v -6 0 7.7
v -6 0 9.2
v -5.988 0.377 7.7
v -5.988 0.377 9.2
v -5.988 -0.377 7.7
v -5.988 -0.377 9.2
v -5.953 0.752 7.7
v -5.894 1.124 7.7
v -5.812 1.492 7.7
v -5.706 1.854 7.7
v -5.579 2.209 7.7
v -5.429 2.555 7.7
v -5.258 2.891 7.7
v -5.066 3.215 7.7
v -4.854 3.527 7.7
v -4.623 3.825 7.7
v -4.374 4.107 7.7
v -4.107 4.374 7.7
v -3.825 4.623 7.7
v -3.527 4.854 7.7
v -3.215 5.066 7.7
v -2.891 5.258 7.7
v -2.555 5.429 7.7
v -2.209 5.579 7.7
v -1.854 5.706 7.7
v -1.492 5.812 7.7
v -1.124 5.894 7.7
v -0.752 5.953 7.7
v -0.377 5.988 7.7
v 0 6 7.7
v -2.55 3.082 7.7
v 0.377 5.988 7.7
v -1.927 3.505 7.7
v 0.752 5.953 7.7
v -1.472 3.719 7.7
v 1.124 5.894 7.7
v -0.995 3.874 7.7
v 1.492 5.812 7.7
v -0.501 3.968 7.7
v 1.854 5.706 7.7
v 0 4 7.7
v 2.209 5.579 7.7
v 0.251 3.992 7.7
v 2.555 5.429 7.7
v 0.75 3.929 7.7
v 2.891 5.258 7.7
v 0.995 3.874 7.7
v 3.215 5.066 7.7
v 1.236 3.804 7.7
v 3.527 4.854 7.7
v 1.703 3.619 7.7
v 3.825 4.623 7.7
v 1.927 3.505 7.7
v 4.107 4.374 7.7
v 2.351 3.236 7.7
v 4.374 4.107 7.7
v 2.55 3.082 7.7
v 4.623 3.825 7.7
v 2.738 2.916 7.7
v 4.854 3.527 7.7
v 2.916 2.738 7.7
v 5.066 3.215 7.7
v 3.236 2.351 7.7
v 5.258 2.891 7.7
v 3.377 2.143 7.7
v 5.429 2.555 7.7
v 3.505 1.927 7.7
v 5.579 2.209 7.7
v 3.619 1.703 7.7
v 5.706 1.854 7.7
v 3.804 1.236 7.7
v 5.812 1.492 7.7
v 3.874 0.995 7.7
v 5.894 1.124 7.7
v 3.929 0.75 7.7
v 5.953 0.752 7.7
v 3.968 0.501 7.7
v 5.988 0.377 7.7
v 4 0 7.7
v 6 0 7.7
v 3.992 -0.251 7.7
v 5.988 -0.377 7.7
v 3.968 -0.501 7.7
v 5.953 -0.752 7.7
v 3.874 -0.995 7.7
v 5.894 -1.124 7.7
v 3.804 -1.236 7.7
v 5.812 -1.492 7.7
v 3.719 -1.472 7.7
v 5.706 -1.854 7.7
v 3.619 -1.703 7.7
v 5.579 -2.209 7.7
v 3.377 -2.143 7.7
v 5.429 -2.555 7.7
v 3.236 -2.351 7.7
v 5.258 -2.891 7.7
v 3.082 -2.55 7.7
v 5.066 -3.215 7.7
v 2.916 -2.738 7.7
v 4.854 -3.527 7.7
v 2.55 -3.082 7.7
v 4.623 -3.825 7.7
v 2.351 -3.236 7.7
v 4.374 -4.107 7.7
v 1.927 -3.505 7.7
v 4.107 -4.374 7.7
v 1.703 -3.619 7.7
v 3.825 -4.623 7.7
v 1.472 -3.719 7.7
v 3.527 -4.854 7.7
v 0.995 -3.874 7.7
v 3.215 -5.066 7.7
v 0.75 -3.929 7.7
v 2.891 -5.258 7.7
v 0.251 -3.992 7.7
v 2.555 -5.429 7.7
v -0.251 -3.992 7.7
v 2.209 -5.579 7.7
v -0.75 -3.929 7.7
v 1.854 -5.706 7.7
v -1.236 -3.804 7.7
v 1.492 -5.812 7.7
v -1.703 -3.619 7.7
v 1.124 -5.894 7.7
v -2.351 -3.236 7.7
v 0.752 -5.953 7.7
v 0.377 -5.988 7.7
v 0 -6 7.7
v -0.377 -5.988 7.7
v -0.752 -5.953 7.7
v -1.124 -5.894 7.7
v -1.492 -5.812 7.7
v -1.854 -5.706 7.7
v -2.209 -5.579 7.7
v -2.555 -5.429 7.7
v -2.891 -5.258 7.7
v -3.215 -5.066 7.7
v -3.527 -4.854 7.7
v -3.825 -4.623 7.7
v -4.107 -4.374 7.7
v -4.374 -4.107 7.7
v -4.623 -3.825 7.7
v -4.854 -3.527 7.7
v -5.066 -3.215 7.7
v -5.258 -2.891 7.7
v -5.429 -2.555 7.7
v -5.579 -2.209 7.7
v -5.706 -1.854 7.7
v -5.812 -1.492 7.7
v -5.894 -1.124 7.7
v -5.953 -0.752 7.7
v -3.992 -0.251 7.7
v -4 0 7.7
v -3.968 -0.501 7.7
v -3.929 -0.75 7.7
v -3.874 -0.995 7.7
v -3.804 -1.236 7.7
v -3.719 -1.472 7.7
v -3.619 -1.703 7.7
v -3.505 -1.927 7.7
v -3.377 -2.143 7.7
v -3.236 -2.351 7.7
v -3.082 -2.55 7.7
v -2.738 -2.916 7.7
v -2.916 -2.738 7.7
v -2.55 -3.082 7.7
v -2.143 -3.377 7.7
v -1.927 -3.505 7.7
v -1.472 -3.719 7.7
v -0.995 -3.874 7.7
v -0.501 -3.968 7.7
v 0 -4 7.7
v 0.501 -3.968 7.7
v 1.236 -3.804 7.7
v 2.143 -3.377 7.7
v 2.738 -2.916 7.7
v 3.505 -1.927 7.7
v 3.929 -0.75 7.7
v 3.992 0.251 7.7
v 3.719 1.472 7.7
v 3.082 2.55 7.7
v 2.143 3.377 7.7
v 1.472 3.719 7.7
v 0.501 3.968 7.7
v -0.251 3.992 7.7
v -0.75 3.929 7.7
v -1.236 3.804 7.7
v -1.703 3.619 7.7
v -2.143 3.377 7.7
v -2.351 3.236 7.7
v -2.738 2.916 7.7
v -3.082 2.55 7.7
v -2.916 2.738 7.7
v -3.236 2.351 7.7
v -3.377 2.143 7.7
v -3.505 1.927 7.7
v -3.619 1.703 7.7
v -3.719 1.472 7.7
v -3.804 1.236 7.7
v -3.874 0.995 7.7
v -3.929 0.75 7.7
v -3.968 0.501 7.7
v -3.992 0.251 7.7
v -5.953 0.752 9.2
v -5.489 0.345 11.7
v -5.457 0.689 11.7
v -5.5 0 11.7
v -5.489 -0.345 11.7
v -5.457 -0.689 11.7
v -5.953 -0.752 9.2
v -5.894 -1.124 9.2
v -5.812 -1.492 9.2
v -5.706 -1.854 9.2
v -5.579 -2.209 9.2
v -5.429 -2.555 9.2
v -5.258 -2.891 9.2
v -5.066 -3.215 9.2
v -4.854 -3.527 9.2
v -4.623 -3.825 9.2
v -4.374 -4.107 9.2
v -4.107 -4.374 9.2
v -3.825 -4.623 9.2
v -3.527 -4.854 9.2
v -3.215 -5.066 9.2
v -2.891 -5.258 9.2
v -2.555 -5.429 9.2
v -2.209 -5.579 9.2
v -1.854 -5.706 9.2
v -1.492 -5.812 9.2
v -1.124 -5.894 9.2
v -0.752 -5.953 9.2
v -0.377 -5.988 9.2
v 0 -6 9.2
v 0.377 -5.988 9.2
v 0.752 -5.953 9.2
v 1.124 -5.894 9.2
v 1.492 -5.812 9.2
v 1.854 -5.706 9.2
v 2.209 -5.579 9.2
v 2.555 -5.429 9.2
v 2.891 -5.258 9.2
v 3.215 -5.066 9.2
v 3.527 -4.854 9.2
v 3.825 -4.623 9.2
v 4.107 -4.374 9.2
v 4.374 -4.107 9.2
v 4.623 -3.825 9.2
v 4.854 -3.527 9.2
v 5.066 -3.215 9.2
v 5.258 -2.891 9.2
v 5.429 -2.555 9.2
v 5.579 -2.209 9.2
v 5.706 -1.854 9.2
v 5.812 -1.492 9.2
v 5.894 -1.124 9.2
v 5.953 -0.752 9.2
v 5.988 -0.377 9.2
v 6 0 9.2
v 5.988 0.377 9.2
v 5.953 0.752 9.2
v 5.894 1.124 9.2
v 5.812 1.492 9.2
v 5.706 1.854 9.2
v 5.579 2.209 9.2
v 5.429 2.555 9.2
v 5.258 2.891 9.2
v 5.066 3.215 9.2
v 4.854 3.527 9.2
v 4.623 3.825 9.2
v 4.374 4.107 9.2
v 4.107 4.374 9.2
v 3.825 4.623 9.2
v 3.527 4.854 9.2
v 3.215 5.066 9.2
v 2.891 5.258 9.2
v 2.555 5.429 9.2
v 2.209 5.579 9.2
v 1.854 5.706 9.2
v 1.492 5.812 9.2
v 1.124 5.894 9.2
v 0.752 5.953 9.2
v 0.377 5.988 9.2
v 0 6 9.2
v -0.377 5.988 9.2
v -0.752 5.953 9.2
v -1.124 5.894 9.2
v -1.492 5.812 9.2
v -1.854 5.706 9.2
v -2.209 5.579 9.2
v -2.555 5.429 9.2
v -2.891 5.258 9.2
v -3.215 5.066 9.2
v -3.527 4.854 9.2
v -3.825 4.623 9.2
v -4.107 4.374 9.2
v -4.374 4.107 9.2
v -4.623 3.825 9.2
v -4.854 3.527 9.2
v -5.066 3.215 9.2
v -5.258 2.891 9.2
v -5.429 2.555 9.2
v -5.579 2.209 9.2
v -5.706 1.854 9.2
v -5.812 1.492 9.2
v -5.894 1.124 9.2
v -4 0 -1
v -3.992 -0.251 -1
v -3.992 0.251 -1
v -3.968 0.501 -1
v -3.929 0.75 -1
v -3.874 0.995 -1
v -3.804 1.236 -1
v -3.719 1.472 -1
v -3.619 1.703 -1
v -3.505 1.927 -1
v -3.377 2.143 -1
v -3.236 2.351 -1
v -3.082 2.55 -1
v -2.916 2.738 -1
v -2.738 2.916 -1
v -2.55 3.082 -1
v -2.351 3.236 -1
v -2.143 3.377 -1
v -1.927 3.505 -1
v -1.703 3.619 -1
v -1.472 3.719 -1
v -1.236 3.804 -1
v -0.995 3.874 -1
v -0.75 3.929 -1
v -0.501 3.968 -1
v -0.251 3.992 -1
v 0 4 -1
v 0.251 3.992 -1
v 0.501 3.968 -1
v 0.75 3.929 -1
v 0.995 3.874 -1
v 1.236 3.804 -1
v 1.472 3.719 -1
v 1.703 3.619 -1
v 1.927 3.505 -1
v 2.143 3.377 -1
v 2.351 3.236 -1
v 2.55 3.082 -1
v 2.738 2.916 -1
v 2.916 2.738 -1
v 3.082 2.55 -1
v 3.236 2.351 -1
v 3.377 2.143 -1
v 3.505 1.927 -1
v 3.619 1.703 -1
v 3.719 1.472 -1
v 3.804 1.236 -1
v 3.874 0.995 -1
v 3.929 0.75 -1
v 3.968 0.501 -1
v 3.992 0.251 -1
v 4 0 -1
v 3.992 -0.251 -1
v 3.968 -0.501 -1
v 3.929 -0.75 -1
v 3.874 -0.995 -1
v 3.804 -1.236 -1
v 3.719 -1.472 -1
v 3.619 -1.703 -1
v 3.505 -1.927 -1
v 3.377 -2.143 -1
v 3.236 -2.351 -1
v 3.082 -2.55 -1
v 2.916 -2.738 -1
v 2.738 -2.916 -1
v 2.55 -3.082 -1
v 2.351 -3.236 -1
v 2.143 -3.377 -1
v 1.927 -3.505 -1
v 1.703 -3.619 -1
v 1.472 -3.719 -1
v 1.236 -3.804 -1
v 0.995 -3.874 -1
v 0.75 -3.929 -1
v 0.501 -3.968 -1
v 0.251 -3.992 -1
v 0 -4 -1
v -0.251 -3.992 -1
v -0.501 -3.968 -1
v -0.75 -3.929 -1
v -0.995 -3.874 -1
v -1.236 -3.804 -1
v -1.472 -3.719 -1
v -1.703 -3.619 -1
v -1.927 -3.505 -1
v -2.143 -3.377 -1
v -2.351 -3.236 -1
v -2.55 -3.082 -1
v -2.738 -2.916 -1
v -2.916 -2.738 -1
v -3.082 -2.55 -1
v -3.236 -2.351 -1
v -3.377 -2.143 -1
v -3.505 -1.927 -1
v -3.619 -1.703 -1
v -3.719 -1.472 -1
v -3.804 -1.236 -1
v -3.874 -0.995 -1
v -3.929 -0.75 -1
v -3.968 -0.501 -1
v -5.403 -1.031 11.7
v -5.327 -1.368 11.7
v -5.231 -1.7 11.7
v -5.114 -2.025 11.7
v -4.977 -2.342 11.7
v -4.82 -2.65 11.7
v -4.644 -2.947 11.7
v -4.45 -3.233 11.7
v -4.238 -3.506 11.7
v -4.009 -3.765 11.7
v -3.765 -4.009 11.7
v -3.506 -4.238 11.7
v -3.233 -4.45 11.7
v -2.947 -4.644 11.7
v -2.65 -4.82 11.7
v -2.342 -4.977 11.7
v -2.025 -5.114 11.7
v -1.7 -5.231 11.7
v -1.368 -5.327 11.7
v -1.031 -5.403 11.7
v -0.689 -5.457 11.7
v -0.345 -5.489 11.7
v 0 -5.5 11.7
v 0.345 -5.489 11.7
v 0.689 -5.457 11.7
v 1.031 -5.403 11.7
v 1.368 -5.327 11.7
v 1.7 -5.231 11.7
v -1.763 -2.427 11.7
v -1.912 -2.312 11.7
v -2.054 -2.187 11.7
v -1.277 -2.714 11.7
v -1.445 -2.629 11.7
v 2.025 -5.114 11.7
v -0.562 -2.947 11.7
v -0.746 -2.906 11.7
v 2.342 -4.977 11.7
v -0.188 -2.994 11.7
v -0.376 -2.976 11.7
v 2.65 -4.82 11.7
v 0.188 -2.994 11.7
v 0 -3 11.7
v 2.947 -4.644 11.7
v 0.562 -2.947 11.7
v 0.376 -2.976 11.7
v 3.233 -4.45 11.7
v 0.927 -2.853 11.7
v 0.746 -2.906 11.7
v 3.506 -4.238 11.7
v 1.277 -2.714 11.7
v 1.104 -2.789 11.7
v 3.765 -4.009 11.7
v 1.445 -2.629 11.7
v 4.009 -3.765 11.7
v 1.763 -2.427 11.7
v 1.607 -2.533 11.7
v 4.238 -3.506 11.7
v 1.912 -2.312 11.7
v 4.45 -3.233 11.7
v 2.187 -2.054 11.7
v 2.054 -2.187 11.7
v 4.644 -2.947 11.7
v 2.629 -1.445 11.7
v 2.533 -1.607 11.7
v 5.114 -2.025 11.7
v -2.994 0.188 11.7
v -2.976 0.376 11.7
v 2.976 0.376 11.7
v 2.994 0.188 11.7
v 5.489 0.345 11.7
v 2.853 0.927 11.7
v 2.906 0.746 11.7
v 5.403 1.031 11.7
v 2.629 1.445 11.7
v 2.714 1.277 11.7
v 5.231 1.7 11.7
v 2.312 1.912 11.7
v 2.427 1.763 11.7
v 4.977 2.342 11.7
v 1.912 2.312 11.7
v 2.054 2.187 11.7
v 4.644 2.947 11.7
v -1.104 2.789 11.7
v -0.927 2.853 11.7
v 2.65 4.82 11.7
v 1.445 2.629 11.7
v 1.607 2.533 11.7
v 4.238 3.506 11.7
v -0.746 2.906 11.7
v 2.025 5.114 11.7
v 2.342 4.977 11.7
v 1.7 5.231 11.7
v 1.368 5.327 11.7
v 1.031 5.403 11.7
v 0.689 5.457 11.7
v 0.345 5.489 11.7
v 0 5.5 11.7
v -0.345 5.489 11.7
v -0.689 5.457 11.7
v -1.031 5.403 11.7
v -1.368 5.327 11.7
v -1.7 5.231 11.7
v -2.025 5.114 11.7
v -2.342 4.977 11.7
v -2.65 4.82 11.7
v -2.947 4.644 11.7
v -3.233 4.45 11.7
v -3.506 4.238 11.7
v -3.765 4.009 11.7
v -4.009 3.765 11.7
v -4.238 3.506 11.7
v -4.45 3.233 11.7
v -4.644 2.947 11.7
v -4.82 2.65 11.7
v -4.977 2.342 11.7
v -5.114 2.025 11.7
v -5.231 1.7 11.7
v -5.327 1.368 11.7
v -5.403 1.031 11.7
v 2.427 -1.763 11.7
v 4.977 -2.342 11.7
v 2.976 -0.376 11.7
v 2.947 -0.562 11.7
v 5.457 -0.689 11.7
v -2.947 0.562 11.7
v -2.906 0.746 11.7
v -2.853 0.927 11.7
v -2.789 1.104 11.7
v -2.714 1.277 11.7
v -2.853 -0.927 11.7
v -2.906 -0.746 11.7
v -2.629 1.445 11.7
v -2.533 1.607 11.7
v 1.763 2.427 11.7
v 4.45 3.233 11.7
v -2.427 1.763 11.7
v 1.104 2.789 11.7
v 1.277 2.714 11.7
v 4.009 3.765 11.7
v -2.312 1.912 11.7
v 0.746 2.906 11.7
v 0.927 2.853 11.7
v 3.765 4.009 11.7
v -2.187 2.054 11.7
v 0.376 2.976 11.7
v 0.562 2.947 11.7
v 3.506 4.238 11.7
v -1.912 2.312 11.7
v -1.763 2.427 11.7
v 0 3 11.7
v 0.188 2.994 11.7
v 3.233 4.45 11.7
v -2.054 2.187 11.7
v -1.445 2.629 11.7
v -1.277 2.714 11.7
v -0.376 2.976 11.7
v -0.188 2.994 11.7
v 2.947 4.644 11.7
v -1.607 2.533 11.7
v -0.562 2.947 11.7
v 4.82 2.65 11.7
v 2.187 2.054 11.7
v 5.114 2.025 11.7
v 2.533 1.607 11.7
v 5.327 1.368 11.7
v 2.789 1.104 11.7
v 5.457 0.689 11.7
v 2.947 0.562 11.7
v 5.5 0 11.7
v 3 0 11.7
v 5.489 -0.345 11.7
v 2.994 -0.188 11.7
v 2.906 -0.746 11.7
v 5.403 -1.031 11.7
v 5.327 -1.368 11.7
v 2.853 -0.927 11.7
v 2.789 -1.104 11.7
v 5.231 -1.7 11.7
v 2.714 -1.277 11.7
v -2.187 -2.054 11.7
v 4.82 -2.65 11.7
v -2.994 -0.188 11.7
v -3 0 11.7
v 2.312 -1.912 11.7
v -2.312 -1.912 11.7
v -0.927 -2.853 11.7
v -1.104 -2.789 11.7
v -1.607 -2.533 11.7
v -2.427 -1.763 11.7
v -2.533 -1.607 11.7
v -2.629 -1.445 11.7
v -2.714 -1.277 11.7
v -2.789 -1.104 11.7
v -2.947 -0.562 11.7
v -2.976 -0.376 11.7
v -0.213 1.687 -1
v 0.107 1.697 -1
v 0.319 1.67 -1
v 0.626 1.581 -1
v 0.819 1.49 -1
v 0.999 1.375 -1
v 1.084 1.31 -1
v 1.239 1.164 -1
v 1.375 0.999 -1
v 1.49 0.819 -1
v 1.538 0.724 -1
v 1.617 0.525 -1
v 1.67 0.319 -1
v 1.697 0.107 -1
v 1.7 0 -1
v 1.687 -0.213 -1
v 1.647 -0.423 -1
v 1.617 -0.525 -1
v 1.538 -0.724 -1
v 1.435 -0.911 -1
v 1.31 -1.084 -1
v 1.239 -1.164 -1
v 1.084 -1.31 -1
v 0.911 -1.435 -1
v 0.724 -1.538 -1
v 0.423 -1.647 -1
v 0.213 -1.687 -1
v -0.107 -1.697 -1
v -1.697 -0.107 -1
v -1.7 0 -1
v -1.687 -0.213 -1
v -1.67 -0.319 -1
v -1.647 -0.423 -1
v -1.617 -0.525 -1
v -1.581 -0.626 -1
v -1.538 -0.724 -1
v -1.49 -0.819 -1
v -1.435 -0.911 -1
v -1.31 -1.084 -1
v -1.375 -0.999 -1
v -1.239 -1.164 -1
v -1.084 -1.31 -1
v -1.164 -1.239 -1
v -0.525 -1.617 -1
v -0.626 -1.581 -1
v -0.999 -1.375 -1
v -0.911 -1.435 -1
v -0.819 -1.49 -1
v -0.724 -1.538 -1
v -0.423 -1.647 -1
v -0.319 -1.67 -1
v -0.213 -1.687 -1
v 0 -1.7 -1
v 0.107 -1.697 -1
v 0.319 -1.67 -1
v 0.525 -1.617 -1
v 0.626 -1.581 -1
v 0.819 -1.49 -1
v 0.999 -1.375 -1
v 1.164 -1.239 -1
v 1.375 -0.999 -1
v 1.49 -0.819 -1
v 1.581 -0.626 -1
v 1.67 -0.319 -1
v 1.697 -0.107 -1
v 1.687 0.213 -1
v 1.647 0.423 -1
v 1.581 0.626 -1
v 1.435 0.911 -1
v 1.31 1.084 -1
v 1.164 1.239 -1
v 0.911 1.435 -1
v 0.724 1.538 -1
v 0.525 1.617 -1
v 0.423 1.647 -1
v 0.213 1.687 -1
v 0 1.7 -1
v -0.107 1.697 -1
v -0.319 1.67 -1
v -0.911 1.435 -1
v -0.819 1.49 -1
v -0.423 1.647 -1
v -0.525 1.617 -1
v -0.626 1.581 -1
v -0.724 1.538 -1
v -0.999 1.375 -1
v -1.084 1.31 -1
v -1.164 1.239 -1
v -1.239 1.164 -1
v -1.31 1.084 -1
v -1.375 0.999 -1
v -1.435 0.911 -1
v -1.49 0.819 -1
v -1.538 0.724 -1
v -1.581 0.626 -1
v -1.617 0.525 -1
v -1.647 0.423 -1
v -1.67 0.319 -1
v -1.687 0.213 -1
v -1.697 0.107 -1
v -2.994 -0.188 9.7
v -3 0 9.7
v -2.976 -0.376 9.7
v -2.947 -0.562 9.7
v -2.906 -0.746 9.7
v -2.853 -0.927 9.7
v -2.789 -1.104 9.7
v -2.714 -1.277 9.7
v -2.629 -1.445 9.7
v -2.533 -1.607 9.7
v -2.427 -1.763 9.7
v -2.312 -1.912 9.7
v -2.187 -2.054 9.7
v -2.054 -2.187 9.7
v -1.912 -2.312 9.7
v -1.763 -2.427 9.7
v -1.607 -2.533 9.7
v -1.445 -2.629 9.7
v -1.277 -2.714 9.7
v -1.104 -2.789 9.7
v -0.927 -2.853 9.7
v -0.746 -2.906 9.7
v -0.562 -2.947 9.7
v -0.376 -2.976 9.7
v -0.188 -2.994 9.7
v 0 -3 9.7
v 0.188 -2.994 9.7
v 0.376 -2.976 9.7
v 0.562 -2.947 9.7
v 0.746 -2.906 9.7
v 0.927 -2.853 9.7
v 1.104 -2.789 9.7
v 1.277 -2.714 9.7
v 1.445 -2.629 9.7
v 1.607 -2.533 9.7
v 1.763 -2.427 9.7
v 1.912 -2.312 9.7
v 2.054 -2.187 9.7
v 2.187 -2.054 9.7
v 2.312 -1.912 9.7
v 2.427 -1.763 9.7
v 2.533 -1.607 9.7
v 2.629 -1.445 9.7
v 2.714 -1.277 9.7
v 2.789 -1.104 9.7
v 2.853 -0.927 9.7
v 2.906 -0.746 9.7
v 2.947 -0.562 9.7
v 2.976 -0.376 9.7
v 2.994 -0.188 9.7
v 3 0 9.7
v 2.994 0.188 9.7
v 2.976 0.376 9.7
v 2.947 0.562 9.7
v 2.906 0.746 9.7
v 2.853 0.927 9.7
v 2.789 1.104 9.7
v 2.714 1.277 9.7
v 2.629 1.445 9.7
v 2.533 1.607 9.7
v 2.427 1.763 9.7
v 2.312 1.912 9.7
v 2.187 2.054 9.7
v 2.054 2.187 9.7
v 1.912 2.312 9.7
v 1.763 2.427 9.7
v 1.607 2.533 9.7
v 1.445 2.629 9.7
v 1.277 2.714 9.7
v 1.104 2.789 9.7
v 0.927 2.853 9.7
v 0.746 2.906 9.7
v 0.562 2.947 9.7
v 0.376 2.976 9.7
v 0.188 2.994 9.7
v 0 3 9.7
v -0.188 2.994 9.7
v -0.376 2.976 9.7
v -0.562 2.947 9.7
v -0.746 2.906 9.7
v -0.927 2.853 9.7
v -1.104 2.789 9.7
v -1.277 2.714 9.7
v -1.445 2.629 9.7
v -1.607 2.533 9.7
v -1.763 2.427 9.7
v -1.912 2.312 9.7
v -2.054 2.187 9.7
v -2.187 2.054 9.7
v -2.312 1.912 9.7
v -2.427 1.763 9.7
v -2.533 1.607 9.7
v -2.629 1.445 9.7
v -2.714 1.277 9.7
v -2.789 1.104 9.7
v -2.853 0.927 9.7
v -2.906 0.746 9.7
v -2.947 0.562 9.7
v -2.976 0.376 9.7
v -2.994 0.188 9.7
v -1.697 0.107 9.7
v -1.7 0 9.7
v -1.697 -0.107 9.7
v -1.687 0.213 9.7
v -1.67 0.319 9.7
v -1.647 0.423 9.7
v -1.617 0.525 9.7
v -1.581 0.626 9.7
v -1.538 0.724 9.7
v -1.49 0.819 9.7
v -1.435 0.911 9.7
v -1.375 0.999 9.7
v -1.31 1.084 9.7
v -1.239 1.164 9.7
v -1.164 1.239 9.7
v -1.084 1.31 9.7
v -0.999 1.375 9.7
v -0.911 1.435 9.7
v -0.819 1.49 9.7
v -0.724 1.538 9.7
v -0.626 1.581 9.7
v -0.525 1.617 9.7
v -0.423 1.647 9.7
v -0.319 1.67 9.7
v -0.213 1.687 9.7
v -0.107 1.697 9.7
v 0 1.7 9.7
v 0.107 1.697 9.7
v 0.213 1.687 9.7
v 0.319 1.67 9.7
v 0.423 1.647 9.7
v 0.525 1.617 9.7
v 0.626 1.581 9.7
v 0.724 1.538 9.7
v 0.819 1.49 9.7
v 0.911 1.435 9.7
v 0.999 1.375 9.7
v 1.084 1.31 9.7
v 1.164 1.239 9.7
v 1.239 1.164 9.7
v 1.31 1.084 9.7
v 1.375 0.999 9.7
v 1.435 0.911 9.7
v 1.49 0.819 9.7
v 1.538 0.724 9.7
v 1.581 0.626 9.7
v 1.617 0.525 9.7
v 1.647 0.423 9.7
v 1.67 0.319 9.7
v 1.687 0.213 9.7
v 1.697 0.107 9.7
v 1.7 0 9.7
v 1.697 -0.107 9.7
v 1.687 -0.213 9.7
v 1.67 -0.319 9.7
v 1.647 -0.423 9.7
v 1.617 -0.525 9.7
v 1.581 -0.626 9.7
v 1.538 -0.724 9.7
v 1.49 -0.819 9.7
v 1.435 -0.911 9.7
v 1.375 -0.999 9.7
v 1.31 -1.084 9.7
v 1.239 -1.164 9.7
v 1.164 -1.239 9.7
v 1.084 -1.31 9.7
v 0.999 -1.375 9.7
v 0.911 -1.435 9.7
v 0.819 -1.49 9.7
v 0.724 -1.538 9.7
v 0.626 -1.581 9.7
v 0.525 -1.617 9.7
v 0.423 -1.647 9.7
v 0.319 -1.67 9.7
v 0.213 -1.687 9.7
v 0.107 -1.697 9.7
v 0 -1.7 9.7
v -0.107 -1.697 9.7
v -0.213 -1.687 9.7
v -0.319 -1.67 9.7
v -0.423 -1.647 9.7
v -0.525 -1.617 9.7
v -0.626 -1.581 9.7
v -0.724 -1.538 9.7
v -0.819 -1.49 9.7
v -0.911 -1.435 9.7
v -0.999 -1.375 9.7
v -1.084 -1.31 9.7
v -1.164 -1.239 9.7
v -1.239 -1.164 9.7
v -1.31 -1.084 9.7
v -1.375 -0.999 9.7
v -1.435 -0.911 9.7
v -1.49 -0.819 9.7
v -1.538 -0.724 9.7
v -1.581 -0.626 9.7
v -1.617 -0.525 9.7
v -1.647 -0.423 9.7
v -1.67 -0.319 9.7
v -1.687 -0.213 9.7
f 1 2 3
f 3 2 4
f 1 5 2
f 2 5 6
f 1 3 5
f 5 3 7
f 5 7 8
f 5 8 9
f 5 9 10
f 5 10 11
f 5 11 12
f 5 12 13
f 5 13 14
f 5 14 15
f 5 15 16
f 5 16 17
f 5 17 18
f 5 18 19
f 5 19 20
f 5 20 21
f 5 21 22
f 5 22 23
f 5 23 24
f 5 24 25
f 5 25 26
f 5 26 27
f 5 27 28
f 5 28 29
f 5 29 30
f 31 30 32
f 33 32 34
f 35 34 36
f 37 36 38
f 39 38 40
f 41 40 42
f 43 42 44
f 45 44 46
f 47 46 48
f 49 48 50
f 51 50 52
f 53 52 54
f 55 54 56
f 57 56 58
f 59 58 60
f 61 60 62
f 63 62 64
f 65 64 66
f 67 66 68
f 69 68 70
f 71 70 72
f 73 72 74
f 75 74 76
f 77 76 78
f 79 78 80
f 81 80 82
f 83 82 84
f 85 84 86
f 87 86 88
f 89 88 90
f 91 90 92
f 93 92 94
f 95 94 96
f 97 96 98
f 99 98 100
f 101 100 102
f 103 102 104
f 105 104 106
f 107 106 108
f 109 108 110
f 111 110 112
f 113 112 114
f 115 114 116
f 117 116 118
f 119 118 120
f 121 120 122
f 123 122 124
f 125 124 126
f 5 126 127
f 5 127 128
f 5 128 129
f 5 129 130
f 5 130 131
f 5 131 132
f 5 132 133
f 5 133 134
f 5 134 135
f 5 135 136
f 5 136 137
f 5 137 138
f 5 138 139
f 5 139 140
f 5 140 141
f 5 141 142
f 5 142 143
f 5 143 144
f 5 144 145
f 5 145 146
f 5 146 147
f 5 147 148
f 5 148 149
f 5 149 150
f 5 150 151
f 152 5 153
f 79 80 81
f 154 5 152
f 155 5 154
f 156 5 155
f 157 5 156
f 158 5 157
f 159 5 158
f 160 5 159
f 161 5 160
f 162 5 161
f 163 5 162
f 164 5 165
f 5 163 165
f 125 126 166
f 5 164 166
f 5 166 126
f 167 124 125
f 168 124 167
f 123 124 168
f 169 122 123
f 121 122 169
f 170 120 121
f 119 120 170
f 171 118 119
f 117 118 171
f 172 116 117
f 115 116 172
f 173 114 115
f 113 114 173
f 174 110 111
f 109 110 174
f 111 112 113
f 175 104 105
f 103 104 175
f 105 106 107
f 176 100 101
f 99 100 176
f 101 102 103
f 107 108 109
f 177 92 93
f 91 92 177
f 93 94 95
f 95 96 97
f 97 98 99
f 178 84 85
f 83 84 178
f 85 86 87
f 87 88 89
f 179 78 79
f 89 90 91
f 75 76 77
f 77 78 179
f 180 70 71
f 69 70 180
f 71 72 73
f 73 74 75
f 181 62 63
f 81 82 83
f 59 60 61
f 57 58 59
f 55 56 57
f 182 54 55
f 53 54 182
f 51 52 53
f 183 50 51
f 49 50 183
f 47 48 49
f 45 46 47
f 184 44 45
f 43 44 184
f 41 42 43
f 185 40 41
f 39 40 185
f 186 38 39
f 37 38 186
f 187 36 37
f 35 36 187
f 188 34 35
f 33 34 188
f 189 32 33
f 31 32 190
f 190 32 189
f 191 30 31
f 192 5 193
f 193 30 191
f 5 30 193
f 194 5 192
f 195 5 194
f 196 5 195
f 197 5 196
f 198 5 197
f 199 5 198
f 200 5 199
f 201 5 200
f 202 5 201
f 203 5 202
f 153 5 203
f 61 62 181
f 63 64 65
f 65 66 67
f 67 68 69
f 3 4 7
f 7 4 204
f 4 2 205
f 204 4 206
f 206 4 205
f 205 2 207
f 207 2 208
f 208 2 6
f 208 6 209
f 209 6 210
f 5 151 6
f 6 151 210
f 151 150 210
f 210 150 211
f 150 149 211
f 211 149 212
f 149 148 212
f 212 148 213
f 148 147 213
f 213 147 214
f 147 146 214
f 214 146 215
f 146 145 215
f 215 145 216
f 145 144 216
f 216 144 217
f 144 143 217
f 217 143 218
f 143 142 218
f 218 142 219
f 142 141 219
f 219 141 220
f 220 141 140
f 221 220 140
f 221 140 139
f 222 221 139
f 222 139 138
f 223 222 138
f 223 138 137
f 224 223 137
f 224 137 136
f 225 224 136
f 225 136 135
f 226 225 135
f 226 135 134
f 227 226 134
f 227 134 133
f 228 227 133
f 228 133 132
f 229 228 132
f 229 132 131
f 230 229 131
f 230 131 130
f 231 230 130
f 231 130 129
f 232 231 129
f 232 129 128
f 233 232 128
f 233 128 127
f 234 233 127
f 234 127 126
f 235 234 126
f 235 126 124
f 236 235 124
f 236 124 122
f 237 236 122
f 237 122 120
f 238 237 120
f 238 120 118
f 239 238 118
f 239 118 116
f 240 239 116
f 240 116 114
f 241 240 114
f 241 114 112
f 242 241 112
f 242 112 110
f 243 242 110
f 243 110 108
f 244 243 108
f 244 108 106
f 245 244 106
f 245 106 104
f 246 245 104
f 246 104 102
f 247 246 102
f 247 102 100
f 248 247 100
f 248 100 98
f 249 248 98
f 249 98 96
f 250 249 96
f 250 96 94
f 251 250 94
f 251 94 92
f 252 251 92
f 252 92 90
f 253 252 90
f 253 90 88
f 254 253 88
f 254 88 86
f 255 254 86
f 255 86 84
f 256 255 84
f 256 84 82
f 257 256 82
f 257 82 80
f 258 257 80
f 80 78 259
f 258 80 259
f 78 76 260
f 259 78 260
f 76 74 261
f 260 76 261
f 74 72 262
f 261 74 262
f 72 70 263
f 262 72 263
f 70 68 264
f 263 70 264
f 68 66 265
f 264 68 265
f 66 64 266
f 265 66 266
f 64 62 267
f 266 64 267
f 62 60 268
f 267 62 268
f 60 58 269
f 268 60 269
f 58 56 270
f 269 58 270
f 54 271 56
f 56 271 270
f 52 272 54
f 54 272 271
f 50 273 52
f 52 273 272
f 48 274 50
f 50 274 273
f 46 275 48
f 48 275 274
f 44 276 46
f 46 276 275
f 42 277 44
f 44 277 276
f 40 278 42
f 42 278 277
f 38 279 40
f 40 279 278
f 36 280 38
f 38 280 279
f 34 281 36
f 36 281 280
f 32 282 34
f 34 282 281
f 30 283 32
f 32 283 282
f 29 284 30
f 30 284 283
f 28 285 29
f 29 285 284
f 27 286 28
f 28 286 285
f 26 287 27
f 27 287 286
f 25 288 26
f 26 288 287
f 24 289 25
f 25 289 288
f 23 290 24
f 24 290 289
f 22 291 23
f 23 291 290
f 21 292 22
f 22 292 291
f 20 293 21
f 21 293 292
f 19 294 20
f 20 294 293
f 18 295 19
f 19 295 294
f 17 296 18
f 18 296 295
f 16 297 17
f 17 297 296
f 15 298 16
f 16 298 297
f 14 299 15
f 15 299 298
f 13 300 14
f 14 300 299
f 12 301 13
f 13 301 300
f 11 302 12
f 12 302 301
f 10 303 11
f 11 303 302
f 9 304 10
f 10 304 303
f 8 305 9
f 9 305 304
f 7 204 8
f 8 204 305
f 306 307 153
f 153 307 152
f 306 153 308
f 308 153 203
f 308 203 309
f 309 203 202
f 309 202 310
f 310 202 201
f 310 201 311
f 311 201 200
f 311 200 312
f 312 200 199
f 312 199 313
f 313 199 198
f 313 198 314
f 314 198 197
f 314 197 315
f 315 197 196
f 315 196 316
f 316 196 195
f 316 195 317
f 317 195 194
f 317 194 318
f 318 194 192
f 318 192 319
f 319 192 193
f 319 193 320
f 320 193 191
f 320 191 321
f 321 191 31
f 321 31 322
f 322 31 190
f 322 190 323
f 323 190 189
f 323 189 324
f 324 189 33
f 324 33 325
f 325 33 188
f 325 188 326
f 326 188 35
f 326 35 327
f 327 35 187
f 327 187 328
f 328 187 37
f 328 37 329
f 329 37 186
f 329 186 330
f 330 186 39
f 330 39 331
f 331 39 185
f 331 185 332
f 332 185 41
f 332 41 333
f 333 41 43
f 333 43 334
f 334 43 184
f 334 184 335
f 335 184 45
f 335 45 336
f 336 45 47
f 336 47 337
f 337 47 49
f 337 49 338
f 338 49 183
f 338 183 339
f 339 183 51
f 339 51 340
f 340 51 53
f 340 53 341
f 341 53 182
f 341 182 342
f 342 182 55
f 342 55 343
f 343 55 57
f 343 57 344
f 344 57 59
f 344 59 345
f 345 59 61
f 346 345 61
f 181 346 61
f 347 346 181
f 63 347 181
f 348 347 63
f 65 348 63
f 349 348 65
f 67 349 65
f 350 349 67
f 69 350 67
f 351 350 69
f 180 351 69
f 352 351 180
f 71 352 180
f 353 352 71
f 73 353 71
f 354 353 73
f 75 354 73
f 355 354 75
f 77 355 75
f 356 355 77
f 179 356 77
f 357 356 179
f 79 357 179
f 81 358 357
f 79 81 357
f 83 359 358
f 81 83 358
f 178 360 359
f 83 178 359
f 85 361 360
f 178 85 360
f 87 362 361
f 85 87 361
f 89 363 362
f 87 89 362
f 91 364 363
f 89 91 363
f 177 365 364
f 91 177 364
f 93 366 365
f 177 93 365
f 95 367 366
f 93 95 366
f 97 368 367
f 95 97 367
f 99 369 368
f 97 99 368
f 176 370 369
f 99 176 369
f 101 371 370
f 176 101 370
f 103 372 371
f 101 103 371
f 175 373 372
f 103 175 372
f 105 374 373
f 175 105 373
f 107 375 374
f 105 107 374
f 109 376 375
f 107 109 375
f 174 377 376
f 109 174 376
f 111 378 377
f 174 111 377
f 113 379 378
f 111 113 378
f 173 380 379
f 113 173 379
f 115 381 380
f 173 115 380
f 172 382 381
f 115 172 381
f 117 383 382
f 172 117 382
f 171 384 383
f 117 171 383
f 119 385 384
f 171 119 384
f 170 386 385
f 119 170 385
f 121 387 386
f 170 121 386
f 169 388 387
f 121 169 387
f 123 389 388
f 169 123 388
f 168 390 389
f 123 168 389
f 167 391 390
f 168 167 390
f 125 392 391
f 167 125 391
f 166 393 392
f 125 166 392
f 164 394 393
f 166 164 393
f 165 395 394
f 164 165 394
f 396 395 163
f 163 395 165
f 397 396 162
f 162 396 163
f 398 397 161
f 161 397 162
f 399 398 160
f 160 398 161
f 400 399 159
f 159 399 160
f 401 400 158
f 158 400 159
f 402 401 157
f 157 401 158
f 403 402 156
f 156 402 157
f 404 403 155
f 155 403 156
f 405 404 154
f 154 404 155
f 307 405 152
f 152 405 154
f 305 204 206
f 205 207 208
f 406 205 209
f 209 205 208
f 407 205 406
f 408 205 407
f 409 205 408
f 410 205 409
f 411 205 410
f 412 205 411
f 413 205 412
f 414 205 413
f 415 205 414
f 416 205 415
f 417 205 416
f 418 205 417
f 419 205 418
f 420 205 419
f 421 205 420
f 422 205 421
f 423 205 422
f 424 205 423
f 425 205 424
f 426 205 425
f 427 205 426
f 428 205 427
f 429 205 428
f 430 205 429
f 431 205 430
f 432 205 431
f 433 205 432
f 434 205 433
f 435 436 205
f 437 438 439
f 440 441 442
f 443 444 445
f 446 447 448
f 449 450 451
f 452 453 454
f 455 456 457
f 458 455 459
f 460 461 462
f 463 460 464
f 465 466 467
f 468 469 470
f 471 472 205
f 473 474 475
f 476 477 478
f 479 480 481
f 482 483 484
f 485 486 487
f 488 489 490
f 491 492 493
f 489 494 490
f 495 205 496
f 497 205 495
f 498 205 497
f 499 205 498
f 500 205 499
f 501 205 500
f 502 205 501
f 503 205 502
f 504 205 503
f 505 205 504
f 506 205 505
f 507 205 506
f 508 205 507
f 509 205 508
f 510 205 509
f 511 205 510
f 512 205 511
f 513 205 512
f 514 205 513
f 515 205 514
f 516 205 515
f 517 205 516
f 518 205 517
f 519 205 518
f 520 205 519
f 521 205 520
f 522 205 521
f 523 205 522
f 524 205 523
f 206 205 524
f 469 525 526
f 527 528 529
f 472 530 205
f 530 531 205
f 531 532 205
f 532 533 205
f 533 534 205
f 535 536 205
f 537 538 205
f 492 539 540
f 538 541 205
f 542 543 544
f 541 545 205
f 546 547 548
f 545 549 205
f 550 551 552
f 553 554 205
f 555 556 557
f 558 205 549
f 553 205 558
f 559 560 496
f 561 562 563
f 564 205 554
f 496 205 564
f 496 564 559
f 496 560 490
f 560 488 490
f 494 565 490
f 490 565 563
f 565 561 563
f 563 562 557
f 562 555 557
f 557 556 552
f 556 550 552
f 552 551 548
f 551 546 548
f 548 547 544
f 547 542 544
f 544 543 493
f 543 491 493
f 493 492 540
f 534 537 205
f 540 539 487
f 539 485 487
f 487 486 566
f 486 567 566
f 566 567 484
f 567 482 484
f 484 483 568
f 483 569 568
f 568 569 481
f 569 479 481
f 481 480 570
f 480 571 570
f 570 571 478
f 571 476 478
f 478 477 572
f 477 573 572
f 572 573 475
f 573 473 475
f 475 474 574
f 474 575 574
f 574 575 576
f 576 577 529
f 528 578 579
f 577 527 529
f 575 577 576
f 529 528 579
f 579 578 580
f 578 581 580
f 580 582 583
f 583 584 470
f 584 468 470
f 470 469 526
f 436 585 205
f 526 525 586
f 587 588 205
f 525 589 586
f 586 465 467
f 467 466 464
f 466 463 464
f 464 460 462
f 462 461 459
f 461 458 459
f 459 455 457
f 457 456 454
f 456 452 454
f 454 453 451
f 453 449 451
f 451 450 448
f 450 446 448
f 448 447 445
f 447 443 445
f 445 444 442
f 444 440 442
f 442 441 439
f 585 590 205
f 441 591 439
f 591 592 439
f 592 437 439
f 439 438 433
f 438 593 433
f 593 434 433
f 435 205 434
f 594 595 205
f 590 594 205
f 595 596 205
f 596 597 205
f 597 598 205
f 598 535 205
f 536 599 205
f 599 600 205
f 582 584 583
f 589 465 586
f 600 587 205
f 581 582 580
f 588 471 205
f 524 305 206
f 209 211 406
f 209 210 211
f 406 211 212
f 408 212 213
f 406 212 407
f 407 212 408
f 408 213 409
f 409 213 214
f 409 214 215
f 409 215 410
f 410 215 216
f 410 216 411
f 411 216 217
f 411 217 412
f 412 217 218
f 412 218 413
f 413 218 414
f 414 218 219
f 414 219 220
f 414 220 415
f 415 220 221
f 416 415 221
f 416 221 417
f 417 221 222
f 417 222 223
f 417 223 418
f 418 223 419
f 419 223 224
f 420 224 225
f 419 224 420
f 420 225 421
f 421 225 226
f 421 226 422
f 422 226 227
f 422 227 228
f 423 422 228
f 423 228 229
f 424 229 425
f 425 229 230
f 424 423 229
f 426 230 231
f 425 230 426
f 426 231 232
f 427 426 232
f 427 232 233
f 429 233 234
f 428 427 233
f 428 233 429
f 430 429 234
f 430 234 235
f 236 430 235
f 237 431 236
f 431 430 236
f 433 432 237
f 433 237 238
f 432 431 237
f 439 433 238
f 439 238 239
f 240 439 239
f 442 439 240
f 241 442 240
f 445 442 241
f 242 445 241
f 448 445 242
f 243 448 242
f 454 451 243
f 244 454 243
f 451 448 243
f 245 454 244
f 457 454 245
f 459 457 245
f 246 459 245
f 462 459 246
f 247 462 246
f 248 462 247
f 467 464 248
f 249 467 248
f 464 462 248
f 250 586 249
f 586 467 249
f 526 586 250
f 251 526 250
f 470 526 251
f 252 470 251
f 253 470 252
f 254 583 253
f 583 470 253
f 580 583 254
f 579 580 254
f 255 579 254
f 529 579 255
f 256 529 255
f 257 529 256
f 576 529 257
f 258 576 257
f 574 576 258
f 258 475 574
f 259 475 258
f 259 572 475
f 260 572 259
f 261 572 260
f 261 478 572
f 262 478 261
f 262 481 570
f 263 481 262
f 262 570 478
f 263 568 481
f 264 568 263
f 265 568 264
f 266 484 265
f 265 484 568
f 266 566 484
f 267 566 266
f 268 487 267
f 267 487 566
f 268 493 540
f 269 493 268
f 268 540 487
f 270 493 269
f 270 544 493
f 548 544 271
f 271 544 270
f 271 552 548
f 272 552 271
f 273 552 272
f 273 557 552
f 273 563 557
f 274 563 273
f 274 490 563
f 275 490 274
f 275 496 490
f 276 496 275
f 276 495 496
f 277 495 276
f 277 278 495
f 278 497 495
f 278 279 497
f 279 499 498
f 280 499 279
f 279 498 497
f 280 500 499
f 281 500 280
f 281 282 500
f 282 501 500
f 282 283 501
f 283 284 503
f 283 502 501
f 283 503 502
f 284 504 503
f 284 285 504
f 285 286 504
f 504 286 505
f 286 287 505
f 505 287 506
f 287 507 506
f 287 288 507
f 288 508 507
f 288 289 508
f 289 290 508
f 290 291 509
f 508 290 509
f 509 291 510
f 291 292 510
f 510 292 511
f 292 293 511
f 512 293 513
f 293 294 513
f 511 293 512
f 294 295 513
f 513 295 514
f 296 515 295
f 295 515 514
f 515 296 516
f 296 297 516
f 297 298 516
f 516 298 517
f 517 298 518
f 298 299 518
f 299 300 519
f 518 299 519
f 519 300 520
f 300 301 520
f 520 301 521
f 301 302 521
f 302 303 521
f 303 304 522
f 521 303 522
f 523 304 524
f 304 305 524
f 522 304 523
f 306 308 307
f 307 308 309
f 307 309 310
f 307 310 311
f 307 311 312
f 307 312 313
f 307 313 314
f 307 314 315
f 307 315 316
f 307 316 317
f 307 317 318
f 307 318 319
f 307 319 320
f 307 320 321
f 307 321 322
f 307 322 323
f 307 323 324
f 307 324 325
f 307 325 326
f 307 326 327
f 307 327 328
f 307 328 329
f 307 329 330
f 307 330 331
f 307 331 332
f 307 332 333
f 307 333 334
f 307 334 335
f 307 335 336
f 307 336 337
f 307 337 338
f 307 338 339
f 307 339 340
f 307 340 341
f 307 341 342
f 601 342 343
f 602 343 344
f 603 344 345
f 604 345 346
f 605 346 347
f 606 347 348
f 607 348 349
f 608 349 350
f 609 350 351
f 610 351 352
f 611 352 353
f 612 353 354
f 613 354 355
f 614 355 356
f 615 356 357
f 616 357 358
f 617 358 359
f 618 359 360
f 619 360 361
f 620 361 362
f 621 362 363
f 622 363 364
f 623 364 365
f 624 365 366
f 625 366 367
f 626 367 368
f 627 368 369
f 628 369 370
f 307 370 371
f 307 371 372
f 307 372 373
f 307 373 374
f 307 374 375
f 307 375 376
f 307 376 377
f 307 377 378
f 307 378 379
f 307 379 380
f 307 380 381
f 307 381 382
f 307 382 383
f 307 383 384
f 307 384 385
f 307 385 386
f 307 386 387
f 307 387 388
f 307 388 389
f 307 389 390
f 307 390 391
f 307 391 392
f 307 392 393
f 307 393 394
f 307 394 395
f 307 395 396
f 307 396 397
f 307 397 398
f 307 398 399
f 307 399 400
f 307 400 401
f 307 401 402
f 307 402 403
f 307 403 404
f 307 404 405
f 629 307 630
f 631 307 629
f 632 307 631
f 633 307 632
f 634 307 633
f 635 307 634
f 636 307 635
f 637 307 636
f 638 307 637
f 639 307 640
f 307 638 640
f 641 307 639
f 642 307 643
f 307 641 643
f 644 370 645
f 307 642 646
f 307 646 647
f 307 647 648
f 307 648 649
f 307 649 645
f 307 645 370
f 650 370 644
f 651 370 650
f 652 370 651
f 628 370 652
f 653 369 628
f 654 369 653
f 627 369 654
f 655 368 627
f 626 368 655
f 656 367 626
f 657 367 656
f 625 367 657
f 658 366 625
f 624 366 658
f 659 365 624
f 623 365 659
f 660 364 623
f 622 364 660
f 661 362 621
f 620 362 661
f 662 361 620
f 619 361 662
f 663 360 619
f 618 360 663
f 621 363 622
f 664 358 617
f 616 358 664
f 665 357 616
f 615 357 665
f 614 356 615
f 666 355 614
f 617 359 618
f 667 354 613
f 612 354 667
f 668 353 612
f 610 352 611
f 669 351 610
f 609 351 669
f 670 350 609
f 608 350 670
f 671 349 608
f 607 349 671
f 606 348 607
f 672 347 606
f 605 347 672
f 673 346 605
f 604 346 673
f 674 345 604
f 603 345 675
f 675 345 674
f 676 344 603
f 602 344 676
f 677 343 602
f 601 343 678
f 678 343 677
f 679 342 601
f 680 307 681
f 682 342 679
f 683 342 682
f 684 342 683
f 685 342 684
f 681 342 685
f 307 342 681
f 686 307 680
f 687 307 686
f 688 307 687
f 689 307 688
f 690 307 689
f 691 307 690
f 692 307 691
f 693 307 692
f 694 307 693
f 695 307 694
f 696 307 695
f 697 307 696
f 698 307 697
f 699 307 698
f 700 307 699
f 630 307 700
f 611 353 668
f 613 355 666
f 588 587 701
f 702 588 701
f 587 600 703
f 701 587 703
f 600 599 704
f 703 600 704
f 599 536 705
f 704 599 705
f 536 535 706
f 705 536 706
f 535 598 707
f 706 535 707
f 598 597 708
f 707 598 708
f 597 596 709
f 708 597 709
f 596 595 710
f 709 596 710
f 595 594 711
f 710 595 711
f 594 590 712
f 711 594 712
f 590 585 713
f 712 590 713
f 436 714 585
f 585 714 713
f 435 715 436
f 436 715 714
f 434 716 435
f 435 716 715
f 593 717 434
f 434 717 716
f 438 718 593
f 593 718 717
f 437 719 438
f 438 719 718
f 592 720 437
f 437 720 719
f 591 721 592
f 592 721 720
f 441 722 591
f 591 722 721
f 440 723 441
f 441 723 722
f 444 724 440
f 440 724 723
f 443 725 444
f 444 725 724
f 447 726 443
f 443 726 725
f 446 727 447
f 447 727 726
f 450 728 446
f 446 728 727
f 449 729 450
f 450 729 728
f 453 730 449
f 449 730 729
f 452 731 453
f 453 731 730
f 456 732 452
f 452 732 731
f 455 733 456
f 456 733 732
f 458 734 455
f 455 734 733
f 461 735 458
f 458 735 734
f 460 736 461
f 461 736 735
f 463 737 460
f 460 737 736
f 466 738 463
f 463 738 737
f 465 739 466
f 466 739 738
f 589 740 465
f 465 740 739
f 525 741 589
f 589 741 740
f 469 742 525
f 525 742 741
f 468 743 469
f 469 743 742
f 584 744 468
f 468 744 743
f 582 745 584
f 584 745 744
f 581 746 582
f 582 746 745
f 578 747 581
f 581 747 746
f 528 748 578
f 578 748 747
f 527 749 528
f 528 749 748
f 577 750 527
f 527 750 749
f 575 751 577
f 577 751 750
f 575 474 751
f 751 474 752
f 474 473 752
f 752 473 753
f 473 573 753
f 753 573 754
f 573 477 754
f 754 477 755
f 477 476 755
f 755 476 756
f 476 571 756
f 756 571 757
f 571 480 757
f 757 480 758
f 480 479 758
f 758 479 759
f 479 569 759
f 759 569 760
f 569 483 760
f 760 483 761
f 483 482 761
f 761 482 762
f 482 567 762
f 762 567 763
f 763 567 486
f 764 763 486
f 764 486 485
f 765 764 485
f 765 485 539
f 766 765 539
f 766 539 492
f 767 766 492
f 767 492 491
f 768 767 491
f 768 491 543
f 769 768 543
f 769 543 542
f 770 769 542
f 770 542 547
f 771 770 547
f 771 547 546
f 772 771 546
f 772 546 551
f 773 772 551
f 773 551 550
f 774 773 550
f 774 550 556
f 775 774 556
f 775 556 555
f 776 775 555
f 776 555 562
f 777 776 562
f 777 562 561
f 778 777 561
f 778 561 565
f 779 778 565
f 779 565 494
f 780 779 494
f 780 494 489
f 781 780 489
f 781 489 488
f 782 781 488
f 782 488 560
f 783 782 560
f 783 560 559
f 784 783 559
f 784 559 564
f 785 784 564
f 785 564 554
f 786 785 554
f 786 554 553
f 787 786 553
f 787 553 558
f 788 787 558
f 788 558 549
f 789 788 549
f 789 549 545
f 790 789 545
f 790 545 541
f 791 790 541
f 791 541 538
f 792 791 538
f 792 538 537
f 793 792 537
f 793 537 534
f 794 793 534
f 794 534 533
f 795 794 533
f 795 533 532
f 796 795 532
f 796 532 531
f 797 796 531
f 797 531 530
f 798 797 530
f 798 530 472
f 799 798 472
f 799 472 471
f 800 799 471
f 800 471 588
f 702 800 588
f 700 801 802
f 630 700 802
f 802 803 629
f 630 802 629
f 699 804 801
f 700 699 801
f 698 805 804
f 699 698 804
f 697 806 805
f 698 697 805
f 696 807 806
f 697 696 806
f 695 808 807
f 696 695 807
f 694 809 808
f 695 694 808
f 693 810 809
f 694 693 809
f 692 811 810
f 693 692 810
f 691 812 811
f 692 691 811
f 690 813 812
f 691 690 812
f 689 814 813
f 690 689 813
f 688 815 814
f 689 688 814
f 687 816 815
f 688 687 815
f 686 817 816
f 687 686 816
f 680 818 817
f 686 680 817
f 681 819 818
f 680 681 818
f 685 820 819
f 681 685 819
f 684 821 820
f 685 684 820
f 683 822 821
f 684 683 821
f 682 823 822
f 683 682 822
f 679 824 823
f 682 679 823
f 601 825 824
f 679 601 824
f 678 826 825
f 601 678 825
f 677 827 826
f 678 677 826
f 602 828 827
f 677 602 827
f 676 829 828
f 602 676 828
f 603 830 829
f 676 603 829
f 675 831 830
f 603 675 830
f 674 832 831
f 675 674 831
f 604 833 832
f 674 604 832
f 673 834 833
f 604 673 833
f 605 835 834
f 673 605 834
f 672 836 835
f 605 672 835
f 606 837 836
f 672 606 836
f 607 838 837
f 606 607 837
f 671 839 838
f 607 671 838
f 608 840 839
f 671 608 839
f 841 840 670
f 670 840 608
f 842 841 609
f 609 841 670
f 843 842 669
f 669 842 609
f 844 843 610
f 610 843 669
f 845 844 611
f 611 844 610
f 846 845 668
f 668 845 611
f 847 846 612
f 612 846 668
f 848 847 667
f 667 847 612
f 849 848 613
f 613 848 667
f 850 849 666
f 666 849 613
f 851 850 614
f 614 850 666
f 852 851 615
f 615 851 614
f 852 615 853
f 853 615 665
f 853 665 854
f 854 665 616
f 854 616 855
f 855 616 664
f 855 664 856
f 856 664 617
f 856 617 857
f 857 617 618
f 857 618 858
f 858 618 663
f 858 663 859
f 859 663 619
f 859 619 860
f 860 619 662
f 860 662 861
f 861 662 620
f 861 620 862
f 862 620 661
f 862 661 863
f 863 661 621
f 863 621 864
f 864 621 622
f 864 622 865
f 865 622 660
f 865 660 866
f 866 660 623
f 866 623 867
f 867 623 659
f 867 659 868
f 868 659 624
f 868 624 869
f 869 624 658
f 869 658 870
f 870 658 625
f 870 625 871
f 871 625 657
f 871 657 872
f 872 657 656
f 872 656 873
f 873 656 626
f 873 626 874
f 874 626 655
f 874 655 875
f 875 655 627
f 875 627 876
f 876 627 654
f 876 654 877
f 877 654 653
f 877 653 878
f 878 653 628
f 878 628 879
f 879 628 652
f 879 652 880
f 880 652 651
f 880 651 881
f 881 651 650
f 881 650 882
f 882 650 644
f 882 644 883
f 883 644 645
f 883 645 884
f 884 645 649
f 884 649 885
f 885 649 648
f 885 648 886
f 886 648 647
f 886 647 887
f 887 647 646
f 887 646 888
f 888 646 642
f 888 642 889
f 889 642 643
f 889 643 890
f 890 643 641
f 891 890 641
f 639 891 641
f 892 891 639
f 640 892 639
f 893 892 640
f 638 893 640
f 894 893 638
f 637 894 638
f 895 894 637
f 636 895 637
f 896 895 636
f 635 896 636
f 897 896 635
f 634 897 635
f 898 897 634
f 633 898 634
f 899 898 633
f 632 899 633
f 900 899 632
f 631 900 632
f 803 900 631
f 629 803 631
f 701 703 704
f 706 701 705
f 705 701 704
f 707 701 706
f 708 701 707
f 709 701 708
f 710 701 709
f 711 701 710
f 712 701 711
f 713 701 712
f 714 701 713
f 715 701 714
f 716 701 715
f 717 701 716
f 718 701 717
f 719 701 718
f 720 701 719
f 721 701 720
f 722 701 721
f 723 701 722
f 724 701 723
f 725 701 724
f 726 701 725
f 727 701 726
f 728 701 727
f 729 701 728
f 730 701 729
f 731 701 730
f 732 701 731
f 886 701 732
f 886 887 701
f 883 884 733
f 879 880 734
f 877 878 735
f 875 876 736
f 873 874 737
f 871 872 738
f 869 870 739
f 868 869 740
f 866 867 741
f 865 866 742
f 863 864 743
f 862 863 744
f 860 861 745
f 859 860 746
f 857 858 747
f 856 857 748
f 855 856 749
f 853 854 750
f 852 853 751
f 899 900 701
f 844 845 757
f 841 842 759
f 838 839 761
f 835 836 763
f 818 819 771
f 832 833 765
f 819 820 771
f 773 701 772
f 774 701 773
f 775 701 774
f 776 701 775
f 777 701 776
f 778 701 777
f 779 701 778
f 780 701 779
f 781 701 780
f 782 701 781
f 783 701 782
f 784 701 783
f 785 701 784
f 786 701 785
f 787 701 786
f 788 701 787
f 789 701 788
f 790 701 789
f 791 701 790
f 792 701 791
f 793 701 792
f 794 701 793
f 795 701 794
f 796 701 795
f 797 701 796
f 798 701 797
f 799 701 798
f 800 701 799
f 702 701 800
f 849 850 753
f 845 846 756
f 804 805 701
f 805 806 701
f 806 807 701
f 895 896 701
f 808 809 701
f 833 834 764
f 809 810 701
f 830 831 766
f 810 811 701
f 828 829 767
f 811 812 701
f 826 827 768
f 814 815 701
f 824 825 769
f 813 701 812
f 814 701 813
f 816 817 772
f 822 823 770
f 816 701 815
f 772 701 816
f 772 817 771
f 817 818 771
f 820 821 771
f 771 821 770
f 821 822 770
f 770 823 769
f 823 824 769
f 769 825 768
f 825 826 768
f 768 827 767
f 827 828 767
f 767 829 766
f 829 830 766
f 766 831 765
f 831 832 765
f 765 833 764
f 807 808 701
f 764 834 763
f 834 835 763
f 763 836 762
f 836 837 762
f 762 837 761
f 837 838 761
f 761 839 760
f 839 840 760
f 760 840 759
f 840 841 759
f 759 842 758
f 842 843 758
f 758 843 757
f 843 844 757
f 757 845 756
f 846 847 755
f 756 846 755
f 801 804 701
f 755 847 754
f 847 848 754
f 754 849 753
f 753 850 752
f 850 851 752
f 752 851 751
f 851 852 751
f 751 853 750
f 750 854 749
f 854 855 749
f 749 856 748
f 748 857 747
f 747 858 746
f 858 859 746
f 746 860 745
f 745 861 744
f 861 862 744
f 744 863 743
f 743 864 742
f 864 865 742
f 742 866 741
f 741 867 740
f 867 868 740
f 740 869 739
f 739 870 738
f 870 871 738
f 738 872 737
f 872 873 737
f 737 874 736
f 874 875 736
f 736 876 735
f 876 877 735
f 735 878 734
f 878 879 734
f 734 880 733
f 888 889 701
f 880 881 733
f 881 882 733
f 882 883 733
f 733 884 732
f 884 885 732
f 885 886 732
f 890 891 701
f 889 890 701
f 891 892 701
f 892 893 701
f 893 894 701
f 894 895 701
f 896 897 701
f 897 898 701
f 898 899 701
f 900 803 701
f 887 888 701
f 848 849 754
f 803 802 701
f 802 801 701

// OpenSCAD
//Casquillos

//Basico
module casquillo(cabeza,ancho,largo){
difference(){
union(){
cylinder(r=ancho,h=largo,$fn=100);
cylinder(r=cabeza,h=1.5,$fn=100);
}
translate([0,0,-1])cylinder(r=1.6,h=10,$fn=100);
}
}

module casquilloPies(){
difference(){
union(){
translate([0,0,-1])cylinder(r=4,h=10.2,$fn=100);
hull(){
translate([0,0,7.7])cylinder(r=6,h=1.5,$fn=100);
translate([0,0,7.7+3])cylinder(r=5.5,h=1,$fn=100);
}
}
translate([0,0,-1])cylinder(r=1.7,h=30,$fn=100);
translate([0,0,11.7-2])cylinder(r=3,h=30,$fn=100);
}
}


casquilloPies();
